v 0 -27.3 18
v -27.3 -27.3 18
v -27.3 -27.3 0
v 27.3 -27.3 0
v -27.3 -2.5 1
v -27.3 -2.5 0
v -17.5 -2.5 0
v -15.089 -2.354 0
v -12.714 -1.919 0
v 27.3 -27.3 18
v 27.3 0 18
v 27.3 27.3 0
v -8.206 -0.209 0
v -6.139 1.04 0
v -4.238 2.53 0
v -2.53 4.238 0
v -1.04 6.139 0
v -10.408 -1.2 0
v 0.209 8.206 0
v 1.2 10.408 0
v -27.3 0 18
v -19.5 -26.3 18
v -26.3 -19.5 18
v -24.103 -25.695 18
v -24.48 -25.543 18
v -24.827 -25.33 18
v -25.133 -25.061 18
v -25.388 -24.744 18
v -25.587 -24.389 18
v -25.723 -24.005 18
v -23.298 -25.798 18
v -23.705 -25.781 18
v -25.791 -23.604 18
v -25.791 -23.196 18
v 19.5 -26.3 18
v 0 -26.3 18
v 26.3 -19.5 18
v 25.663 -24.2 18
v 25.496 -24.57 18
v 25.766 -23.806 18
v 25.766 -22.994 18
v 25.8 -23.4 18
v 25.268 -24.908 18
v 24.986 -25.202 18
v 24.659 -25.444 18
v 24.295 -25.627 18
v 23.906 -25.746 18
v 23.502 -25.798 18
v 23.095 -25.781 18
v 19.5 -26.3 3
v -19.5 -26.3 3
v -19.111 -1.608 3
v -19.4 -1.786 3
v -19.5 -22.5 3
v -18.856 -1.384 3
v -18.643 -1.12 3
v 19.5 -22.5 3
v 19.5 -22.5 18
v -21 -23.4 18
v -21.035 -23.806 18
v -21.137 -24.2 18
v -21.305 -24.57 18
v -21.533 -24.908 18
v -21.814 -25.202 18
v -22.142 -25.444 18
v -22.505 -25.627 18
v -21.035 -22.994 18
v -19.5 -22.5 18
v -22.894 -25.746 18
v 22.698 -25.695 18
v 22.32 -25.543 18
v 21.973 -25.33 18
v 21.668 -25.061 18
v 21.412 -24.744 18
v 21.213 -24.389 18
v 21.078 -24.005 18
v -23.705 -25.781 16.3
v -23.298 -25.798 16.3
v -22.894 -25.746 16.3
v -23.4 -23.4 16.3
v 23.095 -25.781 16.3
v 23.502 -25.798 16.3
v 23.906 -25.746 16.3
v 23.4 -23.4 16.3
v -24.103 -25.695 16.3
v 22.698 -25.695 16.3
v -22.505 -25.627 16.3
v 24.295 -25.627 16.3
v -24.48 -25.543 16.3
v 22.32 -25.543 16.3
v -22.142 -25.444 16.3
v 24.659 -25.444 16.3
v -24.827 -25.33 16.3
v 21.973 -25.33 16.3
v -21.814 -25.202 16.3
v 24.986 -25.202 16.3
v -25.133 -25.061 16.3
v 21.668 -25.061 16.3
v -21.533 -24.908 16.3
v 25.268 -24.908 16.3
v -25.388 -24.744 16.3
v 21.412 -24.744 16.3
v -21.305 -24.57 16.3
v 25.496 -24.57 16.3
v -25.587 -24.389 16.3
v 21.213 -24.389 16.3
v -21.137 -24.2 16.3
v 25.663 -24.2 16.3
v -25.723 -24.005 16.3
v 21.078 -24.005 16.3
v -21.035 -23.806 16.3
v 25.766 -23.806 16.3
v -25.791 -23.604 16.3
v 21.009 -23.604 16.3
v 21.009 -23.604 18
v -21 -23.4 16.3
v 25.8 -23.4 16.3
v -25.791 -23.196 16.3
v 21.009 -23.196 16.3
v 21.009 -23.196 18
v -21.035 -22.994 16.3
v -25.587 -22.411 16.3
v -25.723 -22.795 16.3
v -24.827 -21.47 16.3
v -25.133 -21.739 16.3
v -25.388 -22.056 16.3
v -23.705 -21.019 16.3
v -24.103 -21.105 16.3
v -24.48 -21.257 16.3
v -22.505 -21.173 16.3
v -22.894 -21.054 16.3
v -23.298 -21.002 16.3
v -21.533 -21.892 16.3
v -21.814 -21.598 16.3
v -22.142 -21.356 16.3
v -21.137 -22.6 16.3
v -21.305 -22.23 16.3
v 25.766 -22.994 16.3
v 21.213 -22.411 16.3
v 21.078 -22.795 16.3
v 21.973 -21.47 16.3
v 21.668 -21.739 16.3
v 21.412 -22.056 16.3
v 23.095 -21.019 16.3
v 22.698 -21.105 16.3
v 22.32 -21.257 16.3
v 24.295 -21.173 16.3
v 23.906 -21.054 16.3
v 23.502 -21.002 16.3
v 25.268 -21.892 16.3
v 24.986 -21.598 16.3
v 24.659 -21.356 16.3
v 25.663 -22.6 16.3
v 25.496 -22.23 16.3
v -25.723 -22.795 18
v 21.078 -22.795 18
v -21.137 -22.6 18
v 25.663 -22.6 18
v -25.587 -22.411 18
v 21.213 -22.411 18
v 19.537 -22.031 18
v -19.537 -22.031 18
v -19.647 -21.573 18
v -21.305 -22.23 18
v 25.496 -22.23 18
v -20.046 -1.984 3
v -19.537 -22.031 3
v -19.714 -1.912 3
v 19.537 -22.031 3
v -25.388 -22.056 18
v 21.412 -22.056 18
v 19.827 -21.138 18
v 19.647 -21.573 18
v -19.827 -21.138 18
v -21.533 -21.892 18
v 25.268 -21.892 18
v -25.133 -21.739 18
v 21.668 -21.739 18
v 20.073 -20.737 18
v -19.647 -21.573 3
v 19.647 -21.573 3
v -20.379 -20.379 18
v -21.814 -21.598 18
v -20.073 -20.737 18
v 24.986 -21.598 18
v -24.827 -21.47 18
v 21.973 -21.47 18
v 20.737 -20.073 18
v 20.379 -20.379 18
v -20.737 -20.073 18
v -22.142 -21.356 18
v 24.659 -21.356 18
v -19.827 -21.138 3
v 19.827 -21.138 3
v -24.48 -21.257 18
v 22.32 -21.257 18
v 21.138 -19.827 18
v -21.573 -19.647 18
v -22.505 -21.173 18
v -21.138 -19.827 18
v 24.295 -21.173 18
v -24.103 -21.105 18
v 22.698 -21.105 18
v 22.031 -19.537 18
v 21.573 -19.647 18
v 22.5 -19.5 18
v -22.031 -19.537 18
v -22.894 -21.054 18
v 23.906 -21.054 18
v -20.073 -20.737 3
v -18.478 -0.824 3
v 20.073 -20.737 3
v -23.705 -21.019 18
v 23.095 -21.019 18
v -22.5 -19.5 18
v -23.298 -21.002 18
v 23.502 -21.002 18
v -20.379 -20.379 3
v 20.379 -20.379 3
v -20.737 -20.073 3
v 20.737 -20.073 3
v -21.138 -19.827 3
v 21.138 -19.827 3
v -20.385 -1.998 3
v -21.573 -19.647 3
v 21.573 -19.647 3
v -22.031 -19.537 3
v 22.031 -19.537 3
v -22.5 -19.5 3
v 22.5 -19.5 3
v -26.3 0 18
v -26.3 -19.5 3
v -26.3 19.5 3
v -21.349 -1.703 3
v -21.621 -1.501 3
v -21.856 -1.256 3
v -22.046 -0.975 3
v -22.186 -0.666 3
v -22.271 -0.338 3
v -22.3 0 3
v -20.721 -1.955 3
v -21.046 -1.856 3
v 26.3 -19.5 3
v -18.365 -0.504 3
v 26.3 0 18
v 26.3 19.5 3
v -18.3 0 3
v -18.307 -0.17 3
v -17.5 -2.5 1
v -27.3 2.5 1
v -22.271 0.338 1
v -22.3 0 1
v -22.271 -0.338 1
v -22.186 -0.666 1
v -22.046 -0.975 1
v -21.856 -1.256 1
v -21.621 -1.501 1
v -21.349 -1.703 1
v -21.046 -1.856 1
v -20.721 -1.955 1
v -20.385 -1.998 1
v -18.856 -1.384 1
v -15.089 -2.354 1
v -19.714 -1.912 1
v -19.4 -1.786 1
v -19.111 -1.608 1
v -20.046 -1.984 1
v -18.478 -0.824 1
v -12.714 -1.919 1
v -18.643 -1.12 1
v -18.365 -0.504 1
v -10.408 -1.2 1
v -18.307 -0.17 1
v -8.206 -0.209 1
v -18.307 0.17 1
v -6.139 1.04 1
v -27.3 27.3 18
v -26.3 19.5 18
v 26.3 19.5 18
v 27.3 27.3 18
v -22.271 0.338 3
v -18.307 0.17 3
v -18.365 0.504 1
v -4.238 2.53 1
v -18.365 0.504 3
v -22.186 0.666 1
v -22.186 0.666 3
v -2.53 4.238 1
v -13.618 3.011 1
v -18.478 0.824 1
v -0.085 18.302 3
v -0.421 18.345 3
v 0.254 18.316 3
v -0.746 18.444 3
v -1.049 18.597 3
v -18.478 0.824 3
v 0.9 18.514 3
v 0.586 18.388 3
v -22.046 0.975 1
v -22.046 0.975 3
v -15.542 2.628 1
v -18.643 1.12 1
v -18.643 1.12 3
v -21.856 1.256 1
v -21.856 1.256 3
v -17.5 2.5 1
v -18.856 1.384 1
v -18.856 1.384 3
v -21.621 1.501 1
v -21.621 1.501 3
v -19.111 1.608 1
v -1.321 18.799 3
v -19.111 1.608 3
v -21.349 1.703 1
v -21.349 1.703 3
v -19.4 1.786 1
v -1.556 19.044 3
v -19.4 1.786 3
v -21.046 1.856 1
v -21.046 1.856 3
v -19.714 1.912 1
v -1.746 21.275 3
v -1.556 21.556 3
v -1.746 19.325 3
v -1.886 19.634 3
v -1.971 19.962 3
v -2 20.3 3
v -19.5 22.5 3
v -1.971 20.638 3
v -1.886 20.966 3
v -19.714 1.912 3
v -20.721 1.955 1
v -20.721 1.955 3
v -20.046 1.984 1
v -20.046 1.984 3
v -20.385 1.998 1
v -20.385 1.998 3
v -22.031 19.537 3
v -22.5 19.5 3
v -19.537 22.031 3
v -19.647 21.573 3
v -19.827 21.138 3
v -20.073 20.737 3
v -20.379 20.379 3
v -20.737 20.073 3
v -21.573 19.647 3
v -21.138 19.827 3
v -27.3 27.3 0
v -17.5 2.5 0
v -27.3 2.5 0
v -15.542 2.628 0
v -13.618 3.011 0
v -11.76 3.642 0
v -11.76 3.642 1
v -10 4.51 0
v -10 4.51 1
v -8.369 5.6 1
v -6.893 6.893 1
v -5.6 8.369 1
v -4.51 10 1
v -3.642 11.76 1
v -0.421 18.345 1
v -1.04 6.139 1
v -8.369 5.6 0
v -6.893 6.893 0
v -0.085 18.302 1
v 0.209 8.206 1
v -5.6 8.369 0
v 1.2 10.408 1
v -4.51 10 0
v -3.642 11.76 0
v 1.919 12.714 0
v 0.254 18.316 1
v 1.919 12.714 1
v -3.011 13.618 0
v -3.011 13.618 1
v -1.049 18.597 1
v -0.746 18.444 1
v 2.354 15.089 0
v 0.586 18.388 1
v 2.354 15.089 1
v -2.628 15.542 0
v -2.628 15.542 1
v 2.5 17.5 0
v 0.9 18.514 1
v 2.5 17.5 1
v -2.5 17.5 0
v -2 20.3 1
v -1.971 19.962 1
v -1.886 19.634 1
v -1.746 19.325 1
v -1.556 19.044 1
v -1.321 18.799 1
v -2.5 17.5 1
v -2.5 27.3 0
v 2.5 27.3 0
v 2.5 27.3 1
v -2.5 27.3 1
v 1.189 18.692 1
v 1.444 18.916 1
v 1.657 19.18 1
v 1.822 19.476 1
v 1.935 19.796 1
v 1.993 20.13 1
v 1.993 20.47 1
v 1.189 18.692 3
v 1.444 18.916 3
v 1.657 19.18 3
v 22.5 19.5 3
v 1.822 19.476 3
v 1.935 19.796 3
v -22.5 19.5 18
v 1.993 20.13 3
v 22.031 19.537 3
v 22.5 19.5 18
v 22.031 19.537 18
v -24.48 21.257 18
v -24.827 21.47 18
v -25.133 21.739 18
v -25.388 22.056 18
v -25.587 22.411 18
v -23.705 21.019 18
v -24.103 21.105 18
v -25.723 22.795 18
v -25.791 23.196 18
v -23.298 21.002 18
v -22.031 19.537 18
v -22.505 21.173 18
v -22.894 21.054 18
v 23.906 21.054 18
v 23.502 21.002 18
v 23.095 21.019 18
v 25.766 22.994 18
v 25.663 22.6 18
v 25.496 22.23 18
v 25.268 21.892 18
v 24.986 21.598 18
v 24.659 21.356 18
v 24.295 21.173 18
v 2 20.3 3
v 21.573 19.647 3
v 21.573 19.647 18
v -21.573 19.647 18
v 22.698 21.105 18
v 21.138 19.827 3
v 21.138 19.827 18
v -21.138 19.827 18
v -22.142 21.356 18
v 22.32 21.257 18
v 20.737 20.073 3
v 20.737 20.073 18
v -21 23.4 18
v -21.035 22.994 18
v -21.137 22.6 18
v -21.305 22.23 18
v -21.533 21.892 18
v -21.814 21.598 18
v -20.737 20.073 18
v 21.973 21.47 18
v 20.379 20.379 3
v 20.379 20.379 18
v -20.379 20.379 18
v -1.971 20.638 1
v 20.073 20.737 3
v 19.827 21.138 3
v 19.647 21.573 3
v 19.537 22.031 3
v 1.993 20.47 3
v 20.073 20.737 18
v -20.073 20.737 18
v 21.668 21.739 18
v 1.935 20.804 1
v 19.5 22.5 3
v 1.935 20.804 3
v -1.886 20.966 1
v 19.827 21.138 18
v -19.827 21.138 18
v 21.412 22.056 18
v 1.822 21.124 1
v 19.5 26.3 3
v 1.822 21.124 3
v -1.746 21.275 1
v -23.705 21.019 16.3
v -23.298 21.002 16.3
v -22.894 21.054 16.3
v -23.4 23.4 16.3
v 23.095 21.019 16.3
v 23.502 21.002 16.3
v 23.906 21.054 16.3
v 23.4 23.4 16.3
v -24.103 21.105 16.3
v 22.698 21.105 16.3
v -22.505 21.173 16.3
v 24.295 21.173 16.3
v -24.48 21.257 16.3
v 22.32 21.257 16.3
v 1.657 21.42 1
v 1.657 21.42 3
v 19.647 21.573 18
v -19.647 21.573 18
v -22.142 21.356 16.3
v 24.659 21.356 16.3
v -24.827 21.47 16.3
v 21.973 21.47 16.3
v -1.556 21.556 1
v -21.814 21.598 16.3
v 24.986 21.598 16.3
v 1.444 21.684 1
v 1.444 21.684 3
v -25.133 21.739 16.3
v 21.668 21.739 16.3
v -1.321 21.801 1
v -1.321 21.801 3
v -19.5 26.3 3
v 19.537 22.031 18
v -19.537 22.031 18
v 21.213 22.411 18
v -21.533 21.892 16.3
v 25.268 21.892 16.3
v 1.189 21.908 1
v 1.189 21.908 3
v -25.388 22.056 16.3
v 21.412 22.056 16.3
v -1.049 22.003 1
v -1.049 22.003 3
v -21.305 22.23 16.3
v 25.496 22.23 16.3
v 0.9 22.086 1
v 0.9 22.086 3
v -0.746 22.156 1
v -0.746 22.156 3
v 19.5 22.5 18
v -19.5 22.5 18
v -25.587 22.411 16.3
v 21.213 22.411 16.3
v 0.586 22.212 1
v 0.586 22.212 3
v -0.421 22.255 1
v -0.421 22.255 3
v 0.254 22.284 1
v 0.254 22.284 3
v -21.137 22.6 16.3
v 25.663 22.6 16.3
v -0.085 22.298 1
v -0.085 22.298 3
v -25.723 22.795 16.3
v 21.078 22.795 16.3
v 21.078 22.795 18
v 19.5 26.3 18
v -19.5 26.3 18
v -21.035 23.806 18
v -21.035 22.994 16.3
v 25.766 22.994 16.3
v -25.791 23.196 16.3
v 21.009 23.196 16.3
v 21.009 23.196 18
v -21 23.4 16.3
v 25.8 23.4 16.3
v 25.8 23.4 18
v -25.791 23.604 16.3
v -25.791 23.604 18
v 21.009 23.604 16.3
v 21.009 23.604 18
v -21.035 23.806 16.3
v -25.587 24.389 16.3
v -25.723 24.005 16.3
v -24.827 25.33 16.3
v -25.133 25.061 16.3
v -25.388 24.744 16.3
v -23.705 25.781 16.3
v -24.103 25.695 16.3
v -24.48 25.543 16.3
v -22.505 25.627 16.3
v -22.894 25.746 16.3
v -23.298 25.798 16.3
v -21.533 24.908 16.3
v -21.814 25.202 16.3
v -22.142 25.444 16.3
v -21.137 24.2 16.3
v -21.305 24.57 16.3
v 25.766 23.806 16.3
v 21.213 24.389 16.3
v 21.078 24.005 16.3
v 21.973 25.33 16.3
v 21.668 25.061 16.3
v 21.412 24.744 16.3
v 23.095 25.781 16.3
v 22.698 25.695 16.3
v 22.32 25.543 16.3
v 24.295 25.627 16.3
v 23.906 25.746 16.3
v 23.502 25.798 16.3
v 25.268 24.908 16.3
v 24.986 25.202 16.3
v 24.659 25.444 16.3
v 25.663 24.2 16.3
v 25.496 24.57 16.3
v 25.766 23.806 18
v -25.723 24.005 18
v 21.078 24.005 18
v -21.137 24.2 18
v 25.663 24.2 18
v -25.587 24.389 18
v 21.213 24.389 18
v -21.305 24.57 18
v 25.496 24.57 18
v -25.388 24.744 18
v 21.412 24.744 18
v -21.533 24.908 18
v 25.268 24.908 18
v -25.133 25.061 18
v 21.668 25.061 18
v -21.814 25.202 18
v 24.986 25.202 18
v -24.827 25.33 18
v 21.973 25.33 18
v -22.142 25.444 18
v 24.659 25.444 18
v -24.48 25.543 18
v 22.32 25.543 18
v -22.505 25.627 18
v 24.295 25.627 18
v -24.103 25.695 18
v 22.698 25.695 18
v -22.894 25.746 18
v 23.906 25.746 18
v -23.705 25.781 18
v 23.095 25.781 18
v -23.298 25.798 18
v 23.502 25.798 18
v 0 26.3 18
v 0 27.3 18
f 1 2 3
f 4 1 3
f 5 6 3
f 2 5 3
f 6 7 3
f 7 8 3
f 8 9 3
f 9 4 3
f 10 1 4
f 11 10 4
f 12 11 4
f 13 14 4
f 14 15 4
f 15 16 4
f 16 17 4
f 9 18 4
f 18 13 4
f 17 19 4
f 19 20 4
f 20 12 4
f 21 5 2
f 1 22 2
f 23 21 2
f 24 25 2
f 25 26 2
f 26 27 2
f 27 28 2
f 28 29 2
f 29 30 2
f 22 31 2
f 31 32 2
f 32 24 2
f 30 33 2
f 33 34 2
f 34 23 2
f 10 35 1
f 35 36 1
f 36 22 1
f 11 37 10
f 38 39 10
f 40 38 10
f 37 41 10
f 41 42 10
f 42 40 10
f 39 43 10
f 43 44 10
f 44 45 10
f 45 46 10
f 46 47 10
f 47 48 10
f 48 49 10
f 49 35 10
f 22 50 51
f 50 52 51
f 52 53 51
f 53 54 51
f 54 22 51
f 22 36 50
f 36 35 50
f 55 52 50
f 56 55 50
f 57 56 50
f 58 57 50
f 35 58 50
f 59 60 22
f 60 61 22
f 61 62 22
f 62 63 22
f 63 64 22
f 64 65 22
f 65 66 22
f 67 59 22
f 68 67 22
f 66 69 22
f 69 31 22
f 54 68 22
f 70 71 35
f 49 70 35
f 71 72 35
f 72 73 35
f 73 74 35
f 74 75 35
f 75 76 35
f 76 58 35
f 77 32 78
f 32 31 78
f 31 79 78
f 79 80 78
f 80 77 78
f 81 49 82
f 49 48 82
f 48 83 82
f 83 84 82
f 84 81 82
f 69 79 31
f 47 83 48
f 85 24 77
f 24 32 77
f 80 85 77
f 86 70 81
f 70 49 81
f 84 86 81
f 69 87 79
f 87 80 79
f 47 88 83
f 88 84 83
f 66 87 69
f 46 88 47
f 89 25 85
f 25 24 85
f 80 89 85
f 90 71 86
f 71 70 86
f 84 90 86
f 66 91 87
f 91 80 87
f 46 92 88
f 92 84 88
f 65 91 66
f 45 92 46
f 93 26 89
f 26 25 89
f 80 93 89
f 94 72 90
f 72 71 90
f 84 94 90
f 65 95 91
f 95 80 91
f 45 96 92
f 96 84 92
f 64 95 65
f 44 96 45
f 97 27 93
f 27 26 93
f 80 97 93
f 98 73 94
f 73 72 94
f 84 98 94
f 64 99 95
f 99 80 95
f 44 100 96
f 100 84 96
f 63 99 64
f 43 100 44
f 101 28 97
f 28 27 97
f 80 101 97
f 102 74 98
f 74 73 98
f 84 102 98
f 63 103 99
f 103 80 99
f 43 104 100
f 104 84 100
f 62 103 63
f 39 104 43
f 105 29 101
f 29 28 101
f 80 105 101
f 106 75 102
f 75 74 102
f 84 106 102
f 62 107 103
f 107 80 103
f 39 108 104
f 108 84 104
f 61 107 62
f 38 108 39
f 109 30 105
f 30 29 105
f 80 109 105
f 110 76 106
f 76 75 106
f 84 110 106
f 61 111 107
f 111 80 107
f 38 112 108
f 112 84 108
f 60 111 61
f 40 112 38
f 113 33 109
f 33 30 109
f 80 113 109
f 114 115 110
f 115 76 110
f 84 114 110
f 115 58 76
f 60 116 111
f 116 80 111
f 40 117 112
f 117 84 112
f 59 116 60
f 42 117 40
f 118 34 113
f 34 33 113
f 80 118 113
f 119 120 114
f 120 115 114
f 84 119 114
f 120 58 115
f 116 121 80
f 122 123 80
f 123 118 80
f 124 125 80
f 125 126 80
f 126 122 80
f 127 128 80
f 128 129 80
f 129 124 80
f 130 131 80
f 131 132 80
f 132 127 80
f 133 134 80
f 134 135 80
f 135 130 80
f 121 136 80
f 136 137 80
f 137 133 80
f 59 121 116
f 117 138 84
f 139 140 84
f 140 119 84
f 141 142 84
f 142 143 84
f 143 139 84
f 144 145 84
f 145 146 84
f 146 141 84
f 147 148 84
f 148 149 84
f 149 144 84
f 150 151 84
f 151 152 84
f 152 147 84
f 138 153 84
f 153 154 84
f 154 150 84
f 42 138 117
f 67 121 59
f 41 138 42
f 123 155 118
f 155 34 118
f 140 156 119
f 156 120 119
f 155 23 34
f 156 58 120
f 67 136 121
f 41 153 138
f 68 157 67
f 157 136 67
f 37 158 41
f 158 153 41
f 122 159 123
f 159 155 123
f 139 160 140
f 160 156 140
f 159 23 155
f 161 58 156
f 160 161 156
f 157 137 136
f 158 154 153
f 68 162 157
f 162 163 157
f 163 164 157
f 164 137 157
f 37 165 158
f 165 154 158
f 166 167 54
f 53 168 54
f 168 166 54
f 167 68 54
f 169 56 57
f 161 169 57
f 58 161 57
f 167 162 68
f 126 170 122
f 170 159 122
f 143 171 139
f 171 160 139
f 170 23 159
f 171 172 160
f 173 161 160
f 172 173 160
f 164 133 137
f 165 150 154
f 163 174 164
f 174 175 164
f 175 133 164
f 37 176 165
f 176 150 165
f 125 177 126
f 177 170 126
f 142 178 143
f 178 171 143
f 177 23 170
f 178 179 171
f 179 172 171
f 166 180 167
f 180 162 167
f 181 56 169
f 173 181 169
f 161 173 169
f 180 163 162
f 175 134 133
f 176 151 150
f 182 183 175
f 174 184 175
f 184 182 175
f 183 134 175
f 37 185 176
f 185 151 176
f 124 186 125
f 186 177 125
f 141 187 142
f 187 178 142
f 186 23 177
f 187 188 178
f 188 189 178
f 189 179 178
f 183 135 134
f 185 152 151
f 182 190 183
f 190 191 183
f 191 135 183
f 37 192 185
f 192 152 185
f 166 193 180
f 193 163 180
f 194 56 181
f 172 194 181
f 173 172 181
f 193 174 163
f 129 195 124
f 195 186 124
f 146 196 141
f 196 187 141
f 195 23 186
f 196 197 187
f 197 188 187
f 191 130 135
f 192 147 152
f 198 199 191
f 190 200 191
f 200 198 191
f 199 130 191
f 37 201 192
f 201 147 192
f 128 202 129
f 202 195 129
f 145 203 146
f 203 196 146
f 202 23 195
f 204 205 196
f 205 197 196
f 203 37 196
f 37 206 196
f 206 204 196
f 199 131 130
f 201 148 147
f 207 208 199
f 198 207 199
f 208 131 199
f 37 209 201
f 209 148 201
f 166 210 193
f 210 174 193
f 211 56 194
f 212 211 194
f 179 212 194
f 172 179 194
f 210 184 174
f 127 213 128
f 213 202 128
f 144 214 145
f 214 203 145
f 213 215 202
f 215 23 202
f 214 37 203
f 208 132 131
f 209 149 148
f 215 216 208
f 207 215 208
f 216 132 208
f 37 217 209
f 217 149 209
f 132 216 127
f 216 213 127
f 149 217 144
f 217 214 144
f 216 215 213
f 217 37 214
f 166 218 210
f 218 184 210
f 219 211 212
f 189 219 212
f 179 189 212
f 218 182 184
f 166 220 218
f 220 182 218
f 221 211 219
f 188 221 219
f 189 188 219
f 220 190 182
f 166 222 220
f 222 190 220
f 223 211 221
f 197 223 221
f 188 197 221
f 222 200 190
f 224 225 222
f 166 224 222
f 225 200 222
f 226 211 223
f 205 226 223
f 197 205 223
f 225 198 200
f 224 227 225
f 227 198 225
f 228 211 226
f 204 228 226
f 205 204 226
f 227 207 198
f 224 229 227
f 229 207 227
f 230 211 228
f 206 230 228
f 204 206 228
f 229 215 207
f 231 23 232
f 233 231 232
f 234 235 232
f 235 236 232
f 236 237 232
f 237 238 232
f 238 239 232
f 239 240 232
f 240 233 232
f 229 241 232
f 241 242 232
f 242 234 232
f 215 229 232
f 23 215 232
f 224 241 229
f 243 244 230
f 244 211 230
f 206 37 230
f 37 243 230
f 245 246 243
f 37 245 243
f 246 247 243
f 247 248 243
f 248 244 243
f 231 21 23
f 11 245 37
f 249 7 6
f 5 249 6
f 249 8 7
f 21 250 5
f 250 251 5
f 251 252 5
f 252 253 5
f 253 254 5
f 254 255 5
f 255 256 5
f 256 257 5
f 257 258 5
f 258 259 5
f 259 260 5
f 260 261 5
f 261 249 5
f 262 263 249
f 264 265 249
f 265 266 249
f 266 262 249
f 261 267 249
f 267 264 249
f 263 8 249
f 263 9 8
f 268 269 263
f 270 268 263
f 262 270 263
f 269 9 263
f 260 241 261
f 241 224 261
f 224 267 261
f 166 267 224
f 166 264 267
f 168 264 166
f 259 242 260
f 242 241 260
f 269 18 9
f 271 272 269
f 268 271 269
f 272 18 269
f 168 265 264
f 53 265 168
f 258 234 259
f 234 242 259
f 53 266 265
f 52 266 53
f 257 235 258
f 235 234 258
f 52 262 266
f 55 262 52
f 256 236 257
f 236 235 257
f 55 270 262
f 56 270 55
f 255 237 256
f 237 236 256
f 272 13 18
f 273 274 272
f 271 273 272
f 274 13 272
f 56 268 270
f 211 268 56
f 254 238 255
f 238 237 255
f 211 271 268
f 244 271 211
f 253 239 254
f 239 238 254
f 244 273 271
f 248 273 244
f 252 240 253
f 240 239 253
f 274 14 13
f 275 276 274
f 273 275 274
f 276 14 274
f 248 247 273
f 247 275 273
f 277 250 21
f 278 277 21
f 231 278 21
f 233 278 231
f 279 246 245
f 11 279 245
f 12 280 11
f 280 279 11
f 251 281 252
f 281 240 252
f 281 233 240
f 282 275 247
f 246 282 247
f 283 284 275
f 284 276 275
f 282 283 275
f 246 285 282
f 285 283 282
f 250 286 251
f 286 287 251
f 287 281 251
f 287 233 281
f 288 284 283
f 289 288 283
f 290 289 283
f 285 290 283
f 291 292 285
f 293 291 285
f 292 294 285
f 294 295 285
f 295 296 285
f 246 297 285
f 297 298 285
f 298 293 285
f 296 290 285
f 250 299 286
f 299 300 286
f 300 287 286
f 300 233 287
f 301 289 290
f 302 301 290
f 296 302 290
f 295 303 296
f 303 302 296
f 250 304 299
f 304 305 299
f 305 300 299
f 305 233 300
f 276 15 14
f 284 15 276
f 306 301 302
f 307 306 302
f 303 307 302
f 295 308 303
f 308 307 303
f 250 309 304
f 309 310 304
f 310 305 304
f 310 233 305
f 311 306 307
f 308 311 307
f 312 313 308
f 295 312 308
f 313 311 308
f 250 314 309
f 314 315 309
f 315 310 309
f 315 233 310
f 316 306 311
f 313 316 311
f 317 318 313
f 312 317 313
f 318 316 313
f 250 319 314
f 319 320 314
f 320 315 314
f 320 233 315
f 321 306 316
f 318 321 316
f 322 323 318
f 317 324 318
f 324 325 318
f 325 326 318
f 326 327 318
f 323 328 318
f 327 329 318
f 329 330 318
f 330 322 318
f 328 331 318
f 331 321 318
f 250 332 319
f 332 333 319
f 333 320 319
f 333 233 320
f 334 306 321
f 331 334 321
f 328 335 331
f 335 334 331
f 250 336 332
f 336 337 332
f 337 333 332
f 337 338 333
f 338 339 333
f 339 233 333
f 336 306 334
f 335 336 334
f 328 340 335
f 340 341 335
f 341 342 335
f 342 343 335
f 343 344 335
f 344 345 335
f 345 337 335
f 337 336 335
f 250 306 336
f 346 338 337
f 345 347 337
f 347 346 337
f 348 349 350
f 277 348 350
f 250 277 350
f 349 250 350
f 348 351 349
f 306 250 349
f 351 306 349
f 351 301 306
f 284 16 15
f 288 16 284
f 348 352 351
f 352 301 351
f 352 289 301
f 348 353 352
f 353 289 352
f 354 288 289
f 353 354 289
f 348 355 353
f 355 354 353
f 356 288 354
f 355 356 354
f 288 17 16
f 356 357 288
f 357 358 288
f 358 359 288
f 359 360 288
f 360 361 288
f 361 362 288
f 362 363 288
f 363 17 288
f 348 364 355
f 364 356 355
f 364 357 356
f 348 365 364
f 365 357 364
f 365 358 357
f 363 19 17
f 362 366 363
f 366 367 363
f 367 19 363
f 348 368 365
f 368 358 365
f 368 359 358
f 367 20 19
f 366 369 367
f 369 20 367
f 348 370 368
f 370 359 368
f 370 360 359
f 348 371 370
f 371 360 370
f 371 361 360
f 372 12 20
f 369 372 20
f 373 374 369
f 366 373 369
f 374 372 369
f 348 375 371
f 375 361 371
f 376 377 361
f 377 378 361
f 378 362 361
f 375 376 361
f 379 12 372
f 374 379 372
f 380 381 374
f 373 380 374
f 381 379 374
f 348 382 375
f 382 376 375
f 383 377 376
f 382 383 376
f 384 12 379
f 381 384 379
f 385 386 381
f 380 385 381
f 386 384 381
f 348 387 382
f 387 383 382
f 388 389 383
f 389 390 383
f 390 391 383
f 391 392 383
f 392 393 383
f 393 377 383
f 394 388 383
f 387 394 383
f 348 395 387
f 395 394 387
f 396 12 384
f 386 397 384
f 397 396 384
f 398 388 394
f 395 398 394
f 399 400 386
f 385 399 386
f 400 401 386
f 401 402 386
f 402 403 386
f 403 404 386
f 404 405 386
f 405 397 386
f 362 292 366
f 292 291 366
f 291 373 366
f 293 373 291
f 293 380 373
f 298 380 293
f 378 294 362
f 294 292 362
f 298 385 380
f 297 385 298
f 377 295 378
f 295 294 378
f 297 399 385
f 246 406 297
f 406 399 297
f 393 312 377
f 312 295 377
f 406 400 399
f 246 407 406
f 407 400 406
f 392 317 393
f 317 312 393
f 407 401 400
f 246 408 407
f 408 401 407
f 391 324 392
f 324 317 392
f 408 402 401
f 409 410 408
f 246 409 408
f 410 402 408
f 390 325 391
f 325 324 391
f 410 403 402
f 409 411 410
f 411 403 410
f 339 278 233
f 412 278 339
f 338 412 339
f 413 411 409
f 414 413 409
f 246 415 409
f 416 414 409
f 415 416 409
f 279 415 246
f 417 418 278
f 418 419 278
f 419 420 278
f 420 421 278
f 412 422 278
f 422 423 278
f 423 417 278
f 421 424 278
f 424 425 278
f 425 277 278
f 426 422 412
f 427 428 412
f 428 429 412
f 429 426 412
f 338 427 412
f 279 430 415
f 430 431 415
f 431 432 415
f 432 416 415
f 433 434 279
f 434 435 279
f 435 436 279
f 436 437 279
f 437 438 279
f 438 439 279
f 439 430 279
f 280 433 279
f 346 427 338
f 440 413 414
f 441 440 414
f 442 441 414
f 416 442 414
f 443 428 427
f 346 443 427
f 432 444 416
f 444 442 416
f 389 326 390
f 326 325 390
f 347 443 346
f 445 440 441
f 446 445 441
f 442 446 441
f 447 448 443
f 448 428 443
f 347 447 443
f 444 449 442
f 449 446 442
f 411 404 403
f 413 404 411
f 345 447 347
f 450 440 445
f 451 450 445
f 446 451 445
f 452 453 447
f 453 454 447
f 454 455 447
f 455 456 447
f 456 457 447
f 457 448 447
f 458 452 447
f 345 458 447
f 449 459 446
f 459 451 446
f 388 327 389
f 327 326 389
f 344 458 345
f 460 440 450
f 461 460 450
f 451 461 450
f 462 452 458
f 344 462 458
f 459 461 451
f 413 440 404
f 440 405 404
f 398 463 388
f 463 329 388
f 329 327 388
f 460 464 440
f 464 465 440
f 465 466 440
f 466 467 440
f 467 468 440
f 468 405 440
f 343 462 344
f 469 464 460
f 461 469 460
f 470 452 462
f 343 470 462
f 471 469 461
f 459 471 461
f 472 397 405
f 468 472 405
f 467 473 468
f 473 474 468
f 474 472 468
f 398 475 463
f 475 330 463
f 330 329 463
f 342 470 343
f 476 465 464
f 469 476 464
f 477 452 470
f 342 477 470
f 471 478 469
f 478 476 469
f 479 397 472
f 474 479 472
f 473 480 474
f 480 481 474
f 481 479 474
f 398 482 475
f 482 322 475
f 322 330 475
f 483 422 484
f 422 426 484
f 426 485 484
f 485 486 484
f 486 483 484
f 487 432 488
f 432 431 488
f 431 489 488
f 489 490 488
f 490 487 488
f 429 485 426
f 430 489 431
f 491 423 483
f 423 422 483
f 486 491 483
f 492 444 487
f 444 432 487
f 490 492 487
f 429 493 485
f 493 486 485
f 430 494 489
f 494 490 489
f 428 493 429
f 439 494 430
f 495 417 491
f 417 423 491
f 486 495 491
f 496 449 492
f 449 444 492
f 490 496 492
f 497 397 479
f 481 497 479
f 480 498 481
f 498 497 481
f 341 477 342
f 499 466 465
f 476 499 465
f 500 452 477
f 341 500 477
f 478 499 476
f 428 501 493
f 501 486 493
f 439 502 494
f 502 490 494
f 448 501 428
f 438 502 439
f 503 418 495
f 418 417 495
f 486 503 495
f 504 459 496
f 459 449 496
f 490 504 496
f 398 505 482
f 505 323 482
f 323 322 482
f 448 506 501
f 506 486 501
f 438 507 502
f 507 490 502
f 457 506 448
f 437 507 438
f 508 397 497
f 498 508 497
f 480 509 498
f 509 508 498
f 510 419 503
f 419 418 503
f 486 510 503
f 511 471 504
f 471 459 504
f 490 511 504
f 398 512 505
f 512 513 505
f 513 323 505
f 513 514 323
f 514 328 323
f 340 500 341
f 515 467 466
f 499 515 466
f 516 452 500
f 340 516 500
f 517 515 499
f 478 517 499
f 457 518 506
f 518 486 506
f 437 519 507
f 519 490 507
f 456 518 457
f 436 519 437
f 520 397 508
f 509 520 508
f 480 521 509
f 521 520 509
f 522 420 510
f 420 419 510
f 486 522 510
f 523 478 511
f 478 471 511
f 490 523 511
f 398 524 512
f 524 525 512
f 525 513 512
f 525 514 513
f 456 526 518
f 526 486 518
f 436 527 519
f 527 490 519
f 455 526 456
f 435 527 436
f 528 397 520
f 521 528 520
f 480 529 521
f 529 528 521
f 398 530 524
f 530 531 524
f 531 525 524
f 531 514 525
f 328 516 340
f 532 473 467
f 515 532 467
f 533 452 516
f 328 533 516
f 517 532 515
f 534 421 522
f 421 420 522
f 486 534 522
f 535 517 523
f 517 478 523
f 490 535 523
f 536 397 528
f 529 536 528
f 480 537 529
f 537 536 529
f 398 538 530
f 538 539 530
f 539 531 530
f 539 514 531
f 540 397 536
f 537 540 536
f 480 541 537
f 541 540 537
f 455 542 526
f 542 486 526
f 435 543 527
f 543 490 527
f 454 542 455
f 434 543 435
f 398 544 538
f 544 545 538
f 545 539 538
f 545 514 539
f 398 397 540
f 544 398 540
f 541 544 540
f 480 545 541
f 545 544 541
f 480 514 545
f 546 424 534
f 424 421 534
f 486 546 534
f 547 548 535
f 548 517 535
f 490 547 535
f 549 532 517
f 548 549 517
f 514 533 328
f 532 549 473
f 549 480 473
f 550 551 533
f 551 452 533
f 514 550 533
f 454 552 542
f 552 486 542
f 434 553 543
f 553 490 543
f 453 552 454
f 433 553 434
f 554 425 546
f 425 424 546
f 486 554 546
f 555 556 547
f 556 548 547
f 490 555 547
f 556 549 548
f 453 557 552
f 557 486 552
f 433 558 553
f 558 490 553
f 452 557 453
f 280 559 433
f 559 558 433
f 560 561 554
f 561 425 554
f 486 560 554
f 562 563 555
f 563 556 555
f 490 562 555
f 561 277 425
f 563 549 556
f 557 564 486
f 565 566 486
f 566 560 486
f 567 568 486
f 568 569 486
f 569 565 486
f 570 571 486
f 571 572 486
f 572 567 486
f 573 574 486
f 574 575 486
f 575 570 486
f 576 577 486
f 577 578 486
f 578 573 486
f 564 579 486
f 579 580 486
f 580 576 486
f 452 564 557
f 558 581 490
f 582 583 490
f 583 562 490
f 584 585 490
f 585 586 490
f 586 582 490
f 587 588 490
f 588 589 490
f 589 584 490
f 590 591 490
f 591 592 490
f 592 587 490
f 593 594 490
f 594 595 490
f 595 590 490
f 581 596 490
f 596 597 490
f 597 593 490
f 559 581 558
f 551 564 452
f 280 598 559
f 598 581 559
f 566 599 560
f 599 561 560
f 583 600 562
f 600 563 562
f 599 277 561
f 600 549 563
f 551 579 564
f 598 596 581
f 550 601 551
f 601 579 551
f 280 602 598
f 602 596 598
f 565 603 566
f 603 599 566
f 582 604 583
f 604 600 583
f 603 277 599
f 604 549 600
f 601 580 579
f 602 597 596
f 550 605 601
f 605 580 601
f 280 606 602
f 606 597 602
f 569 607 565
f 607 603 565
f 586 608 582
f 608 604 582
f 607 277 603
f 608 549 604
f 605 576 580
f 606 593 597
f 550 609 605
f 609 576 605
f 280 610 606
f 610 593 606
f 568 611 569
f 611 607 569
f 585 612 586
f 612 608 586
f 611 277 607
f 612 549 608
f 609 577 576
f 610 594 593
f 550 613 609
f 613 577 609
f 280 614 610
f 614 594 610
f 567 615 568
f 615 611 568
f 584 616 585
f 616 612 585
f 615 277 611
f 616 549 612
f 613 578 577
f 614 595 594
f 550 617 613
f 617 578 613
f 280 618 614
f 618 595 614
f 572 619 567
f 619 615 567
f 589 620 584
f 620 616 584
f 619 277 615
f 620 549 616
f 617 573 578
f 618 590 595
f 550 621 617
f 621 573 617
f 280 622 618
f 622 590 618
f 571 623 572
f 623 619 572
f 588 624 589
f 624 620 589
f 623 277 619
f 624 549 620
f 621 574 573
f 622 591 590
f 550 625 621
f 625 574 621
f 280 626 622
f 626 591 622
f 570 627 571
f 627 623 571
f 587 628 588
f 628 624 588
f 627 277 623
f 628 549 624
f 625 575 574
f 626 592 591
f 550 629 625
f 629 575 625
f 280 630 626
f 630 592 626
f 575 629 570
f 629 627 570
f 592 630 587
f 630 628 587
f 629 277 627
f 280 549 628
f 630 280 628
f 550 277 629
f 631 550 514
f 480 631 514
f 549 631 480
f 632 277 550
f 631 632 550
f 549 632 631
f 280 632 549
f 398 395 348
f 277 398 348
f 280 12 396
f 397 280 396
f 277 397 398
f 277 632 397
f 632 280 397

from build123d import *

# Parameters (mm, degrees)
SKICA1_W                 = 54.6
SKICA1_H                 = 54.6
P_IDAT_VYSUNUT_M2_DEPTH  = 3
SKICA5_W                 = 5
SKICA5_H                 = 24.8
ODEBRAT_VYSUNUT_M3_DEPTH = 1
SKICA14_W                = 52.6
SKICA14_H                = 1
P_IDAT_VYSUNUT_M9_DEPTH  = 15
SKICA17_R                = 2
ODEBRAT_VYSUNUT_M8_DEPTH = 7
SKICA19_W                = 7.8
SKICA19_H                = 7.8
P_IDAT_VYSUNUT_M10_DEPTH = 18
SKICA20_R                = 2.4
ODEBRAT_VYSUNUT_M9_DEPTH = 1.7
ZAOBLIT1_R               = 3
ZAOBLIT2_R               = 15
ZAOBLIT3_R               = 20


with BuildPart() as part:
    # Skica1 → Přidat vysunutím2 (new body)
    with BuildSketch(Plane.XY):
        Rectangle(SKICA1_W, SKICA1_H)
    extrude(amount=P_IDAT_VYSUNUT_M2_DEPTH)

    # Skica5 → Odebrat vysunutím3 (cut)
    with BuildSketch(Plane(origin=(0, 0, 0), x_dir=(-1, 0, 0), z_dir=(0, 0, -1))):
        with Locations((0, 14.9)):
            Rectangle(SKICA5_W, SKICA5_H)
        Polygon((27.3, 2.5), (2.5, 2.5), (-2.5, 2.5), (-2.5, -2.5), (27.3, -2.5), align=None)
    extrude(amount=-ODEBRAT_VYSUNUT_M3_DEPTH, mode=Mode.SUBTRACT)

    # Skica14 → Přidat vysunutím9 (add)
    with BuildSketch(Plane.XY.offset(3)):
        Polygon((27.3, 27.3), (-27.3, 27.3), (-27.3, -27.3), (-26.3, -27.3), (-26.3, -26.3), (-26.3, 26.3), (26.3, 26.3), (26.3, -26.3), (26.3, -27.3), (27.3, -27.3), align=None)
        with Locations((0, -26.8)):
            Rectangle(SKICA14_W, SKICA14_H)
    extrude(amount=P_IDAT_VYSUNUT_M9_DEPTH)

    # Skica17 → Odebrat vysunutím8 (cut)
    with BuildSketch(Plane(origin=(0, 0, 1), x_dir=(-1, 0, 0), z_dir=(0, 0, -1))):
        with Locations((20.3, 0)):
            Circle(SKICA17_R)
        with Locations((0, 20.3)):
            Circle(SKICA17_R)
    extrude(amount=-ODEBRAT_VYSUNUT_M8_DEPTH, mode=Mode.SUBTRACT)

    # Skica19 → Přidat vysunutím10 (add)
    with BuildSketch(Plane(origin=(0, 0, 0), x_dir=(-1, 0, 0), z_dir=(0, 0, -1))):
        with Locations((-23.4, 23.4)):
            Rectangle(SKICA19_W, SKICA19_H)
        with Locations((23.4, 23.4)):
            Rectangle(SKICA19_W, SKICA19_H)
        with Locations((-23.4, -23.4)):
            Rectangle(SKICA19_W, SKICA19_H)
        with Locations((23.4, -23.4)):
            Rectangle(SKICA19_W, SKICA19_H)
    extrude(amount=-P_IDAT_VYSUNUT_M10_DEPTH)

    # Skica20 → Odebrat vysunutím9 (cut)
    with BuildSketch(Plane.XY.offset(18)):
        with Locations((-23.4, -23.4)):
            Circle(SKICA20_R)
        with Locations((-23.4, 23.4)):
            Circle(SKICA20_R)
        with Locations((23.400280565, 23.4)):
            Circle(SKICA20_R)
        with Locations((23.400280565, -23.4)):
            Circle(SKICA20_R)
    extrude(amount=-ODEBRAT_VYSUNUT_M9_DEPTH, mode=Mode.SUBTRACT)

    # Zaoblit1
    zaoblit1_edges = [part.edges().sort_by_distance(p)[0] for p in [
        (-19.5, 19.5, 10.5),
        (19.5, -19.5, 10.5),
        (-19.5, -19.5, 10.5),
        (19.5, 19.5, 10.5),
    ]]
    fillet(zaoblit1_edges, radius=ZAOBLIT1_R)

    # Zaoblit2
    zaoblit2_edges = [part.edges().sort_by_distance(p)[0] for p in [
        (-2.5, 2.5, 0.5),
    ]]
    fillet(zaoblit2_edges, radius=ZAOBLIT2_R)

    # Zaoblit3
    zaoblit3_edges = [part.edges().sort_by_distance(p)[0] for p in [
        (2.5, -2.5, 0.5),
    ]]
    fillet(zaoblit3_edges, radius=ZAOBLIT3_R)


solid = part.part
